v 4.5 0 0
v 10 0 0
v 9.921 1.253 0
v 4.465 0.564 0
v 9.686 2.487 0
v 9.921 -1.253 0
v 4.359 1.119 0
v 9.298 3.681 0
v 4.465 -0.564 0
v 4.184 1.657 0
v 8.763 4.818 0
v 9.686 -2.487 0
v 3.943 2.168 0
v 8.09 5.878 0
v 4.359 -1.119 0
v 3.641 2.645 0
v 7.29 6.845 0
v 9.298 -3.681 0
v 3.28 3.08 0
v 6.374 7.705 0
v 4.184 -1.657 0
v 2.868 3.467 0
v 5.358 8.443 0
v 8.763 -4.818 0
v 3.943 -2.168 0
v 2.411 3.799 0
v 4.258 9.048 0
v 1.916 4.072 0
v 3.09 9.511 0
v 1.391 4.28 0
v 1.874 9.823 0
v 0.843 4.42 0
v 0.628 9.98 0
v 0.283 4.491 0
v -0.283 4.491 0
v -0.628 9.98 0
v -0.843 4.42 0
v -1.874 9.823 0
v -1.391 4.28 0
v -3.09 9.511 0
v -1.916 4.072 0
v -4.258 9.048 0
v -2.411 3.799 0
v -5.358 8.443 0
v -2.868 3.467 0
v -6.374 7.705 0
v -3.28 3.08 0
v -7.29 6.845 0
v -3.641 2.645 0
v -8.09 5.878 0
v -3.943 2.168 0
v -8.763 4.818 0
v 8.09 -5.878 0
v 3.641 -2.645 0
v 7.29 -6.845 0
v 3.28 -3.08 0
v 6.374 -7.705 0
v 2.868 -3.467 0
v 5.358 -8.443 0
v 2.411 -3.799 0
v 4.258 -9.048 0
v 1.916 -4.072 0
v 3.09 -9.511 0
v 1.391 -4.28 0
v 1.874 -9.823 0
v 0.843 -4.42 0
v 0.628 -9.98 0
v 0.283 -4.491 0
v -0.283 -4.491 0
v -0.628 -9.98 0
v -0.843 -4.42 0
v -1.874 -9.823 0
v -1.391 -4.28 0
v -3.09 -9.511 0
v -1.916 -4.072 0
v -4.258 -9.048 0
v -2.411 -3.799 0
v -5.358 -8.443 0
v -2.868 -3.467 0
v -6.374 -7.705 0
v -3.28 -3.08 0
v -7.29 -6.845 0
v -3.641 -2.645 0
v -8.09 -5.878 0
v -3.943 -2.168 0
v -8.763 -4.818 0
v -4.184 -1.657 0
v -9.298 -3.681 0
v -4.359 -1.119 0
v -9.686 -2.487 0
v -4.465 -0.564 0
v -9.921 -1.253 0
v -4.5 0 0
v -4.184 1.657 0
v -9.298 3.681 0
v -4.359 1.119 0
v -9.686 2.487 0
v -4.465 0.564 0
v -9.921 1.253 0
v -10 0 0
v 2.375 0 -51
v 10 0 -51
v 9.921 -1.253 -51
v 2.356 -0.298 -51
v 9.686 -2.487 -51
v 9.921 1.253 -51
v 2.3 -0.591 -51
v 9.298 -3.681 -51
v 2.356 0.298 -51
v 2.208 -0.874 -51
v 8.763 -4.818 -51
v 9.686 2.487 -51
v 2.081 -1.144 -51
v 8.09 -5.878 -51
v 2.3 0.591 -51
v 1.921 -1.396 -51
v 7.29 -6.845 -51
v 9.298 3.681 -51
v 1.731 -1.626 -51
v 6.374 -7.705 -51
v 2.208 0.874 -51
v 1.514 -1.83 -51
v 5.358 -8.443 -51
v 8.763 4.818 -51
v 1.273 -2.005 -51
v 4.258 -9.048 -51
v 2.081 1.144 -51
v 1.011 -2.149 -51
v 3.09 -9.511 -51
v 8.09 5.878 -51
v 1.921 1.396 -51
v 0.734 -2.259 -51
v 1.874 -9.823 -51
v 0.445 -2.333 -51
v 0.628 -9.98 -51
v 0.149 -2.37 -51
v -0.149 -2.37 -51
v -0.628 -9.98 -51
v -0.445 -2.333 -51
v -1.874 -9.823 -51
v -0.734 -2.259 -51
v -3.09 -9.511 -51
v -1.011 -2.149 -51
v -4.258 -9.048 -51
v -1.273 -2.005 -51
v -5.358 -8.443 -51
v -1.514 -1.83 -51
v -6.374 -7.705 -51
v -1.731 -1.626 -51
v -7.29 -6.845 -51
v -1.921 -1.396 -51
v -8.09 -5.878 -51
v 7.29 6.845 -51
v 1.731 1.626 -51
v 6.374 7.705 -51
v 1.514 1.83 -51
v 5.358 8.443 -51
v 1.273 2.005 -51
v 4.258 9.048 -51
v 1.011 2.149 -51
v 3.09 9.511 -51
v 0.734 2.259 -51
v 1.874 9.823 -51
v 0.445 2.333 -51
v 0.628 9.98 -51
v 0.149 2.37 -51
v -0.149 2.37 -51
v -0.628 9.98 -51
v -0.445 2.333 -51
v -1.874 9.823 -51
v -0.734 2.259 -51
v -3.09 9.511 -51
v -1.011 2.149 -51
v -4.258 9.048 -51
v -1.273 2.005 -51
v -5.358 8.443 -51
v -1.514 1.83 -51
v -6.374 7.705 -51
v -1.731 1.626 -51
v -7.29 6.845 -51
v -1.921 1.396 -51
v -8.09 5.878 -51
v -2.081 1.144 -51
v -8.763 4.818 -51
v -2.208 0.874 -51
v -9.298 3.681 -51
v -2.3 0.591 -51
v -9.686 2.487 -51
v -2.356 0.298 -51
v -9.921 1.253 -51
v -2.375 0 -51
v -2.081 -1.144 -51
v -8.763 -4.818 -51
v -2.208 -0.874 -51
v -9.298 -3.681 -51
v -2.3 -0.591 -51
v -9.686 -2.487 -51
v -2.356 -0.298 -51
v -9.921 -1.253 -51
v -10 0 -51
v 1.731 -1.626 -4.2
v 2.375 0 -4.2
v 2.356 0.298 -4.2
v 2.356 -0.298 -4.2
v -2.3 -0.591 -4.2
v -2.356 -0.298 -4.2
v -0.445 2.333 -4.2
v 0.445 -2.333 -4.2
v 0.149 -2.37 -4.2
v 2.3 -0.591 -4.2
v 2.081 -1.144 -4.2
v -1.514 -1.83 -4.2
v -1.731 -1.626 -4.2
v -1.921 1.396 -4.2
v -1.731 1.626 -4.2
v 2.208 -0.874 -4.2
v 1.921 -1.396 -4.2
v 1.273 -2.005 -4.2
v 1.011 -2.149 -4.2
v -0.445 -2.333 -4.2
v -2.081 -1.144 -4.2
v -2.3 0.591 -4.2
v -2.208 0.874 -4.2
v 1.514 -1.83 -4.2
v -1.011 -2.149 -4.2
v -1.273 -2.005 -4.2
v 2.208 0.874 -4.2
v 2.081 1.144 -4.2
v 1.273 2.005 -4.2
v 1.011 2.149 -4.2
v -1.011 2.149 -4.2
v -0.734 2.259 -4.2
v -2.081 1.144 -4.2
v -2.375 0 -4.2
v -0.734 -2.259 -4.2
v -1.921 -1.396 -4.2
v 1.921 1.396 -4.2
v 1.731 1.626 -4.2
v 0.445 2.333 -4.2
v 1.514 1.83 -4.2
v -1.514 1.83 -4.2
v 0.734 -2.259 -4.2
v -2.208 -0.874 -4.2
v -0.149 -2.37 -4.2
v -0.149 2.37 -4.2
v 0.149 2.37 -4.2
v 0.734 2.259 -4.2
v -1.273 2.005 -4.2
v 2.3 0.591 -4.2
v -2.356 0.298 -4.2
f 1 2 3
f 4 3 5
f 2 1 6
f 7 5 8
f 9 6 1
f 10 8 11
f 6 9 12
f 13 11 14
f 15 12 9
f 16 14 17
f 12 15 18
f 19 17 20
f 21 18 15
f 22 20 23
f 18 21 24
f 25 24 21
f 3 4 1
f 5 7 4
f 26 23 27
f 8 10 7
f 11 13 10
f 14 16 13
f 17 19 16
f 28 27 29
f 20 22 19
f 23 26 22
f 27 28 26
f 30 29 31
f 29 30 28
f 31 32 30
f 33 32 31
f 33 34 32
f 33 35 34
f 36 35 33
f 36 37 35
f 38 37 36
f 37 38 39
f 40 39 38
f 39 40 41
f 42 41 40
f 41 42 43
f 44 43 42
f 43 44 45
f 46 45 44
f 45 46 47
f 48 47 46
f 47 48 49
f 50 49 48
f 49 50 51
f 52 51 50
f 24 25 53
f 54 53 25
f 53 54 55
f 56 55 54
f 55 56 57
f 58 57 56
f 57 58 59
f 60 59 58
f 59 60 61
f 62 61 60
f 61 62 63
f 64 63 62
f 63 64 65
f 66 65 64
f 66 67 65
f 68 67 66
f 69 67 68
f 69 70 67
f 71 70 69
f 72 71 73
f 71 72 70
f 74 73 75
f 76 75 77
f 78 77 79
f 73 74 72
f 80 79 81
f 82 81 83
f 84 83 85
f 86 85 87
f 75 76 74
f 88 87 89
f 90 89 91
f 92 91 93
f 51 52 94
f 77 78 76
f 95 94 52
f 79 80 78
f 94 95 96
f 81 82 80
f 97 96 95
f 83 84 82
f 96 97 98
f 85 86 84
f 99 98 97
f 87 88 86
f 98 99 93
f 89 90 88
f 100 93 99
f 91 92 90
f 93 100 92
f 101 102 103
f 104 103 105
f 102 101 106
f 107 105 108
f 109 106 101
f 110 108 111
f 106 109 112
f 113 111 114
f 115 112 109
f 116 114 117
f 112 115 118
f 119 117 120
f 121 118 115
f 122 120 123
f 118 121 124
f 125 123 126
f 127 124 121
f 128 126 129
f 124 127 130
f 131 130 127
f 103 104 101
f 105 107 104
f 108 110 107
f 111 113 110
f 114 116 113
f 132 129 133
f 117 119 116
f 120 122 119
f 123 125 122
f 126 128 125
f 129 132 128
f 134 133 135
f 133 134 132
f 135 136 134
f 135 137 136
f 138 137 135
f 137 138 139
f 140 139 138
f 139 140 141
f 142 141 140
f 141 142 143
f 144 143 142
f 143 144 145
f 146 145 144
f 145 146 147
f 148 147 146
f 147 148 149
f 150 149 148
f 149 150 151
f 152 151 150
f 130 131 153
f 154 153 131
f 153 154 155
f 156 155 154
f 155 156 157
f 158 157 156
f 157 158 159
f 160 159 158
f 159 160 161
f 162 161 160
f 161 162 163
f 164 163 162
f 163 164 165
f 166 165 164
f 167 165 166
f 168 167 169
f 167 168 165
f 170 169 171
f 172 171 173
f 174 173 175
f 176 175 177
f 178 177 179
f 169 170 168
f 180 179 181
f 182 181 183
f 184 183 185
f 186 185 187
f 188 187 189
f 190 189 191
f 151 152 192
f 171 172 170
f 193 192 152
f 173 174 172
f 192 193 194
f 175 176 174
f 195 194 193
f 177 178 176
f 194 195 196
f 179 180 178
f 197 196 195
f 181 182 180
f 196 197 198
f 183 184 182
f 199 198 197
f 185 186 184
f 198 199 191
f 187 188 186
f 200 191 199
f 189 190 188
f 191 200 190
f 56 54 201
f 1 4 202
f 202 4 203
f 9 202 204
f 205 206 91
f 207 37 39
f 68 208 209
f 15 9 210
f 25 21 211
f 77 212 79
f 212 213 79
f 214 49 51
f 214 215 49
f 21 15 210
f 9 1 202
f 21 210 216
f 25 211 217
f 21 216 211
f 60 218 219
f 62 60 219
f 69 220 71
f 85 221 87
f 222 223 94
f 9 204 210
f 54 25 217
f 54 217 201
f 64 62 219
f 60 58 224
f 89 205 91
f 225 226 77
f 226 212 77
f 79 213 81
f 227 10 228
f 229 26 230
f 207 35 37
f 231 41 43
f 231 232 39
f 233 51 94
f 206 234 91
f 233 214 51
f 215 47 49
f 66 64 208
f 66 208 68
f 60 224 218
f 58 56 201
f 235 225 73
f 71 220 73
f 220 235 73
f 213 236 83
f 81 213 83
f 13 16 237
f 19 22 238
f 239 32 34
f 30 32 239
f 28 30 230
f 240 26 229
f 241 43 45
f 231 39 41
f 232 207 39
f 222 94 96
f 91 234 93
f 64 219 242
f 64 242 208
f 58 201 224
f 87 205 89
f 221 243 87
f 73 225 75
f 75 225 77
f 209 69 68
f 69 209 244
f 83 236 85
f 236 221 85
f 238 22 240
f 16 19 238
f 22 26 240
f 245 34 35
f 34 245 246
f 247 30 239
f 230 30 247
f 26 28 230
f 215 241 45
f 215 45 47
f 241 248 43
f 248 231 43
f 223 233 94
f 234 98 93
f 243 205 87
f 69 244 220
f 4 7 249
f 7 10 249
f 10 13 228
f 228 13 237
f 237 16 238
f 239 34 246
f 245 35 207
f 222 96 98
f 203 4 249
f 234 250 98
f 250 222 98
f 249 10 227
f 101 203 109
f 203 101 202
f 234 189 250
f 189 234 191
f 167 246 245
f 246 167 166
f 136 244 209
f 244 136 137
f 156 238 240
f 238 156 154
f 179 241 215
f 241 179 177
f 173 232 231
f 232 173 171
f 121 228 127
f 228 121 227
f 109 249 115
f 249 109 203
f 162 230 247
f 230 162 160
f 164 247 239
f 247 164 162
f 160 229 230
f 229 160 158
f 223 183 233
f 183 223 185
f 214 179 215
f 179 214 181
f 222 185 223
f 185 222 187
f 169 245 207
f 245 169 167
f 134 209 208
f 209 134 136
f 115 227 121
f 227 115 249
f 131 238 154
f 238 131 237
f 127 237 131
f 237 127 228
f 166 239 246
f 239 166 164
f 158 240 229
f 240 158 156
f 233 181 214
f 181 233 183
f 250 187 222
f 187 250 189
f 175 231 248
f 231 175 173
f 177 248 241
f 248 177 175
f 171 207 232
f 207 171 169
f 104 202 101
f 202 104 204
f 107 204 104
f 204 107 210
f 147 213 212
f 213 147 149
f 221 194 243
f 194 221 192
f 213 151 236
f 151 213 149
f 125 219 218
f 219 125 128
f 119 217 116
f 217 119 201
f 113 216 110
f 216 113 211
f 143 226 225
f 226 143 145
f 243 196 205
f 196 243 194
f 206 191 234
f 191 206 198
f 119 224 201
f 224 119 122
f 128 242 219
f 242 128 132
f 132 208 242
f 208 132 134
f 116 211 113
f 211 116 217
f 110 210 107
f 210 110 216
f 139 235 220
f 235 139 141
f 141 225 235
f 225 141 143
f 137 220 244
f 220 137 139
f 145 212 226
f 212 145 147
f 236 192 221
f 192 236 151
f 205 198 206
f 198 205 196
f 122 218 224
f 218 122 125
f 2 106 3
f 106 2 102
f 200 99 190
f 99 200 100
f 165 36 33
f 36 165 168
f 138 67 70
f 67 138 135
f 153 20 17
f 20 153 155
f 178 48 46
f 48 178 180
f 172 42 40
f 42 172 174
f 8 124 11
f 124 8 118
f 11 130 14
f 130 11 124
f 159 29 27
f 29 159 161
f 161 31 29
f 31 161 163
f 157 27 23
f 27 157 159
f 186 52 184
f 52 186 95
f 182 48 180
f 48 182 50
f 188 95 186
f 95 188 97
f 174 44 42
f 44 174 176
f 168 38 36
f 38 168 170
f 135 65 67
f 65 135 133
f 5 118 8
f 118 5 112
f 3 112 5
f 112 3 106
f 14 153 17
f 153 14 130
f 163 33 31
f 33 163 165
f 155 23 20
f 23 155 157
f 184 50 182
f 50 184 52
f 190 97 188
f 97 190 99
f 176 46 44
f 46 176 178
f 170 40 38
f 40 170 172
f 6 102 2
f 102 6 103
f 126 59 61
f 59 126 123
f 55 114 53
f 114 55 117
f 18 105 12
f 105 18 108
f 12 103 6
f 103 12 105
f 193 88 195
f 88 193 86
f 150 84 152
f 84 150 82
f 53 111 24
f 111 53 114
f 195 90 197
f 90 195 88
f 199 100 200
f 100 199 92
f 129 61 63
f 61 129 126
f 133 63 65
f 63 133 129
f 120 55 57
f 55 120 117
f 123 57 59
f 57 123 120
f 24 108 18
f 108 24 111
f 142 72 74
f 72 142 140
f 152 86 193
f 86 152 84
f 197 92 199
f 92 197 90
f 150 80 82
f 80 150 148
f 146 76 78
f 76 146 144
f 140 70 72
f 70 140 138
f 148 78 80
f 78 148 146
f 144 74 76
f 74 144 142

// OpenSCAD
$fn = 50;


difference() {
	union() {
		translate(v = [0, 0, -51.0000000000]) {
			cylinder(h = 51, r = 10.0000000000);
		}
	}
	union() {
		translate(v = [0, 0, 0]) {
			rotate(a = [0, 0, 0]) {
				difference() {
					union() {
						#translate(v = [0, 0, -51.0000000000]) {
							cylinder(h = 51, r = 2.2500000000);
						}
						#translate(v = [0, 0, -4.2000000000]) {
							cylinder(h = 4.2000000000, r = 10.0000000000, r1 = 2.3750000000, r2 = 4.5000000000);
						}
						#translate(v = [0, 0, -51.0000000000]) {
							cylinder(h = 51, r = 2.3750000000);
						}
						#translate(v = [0, 0, -51.0000000000]) {
							cylinder(h = 51, r = 2.2500000000);
						}
					}
					union();
				}
			}
		}
	}
}
